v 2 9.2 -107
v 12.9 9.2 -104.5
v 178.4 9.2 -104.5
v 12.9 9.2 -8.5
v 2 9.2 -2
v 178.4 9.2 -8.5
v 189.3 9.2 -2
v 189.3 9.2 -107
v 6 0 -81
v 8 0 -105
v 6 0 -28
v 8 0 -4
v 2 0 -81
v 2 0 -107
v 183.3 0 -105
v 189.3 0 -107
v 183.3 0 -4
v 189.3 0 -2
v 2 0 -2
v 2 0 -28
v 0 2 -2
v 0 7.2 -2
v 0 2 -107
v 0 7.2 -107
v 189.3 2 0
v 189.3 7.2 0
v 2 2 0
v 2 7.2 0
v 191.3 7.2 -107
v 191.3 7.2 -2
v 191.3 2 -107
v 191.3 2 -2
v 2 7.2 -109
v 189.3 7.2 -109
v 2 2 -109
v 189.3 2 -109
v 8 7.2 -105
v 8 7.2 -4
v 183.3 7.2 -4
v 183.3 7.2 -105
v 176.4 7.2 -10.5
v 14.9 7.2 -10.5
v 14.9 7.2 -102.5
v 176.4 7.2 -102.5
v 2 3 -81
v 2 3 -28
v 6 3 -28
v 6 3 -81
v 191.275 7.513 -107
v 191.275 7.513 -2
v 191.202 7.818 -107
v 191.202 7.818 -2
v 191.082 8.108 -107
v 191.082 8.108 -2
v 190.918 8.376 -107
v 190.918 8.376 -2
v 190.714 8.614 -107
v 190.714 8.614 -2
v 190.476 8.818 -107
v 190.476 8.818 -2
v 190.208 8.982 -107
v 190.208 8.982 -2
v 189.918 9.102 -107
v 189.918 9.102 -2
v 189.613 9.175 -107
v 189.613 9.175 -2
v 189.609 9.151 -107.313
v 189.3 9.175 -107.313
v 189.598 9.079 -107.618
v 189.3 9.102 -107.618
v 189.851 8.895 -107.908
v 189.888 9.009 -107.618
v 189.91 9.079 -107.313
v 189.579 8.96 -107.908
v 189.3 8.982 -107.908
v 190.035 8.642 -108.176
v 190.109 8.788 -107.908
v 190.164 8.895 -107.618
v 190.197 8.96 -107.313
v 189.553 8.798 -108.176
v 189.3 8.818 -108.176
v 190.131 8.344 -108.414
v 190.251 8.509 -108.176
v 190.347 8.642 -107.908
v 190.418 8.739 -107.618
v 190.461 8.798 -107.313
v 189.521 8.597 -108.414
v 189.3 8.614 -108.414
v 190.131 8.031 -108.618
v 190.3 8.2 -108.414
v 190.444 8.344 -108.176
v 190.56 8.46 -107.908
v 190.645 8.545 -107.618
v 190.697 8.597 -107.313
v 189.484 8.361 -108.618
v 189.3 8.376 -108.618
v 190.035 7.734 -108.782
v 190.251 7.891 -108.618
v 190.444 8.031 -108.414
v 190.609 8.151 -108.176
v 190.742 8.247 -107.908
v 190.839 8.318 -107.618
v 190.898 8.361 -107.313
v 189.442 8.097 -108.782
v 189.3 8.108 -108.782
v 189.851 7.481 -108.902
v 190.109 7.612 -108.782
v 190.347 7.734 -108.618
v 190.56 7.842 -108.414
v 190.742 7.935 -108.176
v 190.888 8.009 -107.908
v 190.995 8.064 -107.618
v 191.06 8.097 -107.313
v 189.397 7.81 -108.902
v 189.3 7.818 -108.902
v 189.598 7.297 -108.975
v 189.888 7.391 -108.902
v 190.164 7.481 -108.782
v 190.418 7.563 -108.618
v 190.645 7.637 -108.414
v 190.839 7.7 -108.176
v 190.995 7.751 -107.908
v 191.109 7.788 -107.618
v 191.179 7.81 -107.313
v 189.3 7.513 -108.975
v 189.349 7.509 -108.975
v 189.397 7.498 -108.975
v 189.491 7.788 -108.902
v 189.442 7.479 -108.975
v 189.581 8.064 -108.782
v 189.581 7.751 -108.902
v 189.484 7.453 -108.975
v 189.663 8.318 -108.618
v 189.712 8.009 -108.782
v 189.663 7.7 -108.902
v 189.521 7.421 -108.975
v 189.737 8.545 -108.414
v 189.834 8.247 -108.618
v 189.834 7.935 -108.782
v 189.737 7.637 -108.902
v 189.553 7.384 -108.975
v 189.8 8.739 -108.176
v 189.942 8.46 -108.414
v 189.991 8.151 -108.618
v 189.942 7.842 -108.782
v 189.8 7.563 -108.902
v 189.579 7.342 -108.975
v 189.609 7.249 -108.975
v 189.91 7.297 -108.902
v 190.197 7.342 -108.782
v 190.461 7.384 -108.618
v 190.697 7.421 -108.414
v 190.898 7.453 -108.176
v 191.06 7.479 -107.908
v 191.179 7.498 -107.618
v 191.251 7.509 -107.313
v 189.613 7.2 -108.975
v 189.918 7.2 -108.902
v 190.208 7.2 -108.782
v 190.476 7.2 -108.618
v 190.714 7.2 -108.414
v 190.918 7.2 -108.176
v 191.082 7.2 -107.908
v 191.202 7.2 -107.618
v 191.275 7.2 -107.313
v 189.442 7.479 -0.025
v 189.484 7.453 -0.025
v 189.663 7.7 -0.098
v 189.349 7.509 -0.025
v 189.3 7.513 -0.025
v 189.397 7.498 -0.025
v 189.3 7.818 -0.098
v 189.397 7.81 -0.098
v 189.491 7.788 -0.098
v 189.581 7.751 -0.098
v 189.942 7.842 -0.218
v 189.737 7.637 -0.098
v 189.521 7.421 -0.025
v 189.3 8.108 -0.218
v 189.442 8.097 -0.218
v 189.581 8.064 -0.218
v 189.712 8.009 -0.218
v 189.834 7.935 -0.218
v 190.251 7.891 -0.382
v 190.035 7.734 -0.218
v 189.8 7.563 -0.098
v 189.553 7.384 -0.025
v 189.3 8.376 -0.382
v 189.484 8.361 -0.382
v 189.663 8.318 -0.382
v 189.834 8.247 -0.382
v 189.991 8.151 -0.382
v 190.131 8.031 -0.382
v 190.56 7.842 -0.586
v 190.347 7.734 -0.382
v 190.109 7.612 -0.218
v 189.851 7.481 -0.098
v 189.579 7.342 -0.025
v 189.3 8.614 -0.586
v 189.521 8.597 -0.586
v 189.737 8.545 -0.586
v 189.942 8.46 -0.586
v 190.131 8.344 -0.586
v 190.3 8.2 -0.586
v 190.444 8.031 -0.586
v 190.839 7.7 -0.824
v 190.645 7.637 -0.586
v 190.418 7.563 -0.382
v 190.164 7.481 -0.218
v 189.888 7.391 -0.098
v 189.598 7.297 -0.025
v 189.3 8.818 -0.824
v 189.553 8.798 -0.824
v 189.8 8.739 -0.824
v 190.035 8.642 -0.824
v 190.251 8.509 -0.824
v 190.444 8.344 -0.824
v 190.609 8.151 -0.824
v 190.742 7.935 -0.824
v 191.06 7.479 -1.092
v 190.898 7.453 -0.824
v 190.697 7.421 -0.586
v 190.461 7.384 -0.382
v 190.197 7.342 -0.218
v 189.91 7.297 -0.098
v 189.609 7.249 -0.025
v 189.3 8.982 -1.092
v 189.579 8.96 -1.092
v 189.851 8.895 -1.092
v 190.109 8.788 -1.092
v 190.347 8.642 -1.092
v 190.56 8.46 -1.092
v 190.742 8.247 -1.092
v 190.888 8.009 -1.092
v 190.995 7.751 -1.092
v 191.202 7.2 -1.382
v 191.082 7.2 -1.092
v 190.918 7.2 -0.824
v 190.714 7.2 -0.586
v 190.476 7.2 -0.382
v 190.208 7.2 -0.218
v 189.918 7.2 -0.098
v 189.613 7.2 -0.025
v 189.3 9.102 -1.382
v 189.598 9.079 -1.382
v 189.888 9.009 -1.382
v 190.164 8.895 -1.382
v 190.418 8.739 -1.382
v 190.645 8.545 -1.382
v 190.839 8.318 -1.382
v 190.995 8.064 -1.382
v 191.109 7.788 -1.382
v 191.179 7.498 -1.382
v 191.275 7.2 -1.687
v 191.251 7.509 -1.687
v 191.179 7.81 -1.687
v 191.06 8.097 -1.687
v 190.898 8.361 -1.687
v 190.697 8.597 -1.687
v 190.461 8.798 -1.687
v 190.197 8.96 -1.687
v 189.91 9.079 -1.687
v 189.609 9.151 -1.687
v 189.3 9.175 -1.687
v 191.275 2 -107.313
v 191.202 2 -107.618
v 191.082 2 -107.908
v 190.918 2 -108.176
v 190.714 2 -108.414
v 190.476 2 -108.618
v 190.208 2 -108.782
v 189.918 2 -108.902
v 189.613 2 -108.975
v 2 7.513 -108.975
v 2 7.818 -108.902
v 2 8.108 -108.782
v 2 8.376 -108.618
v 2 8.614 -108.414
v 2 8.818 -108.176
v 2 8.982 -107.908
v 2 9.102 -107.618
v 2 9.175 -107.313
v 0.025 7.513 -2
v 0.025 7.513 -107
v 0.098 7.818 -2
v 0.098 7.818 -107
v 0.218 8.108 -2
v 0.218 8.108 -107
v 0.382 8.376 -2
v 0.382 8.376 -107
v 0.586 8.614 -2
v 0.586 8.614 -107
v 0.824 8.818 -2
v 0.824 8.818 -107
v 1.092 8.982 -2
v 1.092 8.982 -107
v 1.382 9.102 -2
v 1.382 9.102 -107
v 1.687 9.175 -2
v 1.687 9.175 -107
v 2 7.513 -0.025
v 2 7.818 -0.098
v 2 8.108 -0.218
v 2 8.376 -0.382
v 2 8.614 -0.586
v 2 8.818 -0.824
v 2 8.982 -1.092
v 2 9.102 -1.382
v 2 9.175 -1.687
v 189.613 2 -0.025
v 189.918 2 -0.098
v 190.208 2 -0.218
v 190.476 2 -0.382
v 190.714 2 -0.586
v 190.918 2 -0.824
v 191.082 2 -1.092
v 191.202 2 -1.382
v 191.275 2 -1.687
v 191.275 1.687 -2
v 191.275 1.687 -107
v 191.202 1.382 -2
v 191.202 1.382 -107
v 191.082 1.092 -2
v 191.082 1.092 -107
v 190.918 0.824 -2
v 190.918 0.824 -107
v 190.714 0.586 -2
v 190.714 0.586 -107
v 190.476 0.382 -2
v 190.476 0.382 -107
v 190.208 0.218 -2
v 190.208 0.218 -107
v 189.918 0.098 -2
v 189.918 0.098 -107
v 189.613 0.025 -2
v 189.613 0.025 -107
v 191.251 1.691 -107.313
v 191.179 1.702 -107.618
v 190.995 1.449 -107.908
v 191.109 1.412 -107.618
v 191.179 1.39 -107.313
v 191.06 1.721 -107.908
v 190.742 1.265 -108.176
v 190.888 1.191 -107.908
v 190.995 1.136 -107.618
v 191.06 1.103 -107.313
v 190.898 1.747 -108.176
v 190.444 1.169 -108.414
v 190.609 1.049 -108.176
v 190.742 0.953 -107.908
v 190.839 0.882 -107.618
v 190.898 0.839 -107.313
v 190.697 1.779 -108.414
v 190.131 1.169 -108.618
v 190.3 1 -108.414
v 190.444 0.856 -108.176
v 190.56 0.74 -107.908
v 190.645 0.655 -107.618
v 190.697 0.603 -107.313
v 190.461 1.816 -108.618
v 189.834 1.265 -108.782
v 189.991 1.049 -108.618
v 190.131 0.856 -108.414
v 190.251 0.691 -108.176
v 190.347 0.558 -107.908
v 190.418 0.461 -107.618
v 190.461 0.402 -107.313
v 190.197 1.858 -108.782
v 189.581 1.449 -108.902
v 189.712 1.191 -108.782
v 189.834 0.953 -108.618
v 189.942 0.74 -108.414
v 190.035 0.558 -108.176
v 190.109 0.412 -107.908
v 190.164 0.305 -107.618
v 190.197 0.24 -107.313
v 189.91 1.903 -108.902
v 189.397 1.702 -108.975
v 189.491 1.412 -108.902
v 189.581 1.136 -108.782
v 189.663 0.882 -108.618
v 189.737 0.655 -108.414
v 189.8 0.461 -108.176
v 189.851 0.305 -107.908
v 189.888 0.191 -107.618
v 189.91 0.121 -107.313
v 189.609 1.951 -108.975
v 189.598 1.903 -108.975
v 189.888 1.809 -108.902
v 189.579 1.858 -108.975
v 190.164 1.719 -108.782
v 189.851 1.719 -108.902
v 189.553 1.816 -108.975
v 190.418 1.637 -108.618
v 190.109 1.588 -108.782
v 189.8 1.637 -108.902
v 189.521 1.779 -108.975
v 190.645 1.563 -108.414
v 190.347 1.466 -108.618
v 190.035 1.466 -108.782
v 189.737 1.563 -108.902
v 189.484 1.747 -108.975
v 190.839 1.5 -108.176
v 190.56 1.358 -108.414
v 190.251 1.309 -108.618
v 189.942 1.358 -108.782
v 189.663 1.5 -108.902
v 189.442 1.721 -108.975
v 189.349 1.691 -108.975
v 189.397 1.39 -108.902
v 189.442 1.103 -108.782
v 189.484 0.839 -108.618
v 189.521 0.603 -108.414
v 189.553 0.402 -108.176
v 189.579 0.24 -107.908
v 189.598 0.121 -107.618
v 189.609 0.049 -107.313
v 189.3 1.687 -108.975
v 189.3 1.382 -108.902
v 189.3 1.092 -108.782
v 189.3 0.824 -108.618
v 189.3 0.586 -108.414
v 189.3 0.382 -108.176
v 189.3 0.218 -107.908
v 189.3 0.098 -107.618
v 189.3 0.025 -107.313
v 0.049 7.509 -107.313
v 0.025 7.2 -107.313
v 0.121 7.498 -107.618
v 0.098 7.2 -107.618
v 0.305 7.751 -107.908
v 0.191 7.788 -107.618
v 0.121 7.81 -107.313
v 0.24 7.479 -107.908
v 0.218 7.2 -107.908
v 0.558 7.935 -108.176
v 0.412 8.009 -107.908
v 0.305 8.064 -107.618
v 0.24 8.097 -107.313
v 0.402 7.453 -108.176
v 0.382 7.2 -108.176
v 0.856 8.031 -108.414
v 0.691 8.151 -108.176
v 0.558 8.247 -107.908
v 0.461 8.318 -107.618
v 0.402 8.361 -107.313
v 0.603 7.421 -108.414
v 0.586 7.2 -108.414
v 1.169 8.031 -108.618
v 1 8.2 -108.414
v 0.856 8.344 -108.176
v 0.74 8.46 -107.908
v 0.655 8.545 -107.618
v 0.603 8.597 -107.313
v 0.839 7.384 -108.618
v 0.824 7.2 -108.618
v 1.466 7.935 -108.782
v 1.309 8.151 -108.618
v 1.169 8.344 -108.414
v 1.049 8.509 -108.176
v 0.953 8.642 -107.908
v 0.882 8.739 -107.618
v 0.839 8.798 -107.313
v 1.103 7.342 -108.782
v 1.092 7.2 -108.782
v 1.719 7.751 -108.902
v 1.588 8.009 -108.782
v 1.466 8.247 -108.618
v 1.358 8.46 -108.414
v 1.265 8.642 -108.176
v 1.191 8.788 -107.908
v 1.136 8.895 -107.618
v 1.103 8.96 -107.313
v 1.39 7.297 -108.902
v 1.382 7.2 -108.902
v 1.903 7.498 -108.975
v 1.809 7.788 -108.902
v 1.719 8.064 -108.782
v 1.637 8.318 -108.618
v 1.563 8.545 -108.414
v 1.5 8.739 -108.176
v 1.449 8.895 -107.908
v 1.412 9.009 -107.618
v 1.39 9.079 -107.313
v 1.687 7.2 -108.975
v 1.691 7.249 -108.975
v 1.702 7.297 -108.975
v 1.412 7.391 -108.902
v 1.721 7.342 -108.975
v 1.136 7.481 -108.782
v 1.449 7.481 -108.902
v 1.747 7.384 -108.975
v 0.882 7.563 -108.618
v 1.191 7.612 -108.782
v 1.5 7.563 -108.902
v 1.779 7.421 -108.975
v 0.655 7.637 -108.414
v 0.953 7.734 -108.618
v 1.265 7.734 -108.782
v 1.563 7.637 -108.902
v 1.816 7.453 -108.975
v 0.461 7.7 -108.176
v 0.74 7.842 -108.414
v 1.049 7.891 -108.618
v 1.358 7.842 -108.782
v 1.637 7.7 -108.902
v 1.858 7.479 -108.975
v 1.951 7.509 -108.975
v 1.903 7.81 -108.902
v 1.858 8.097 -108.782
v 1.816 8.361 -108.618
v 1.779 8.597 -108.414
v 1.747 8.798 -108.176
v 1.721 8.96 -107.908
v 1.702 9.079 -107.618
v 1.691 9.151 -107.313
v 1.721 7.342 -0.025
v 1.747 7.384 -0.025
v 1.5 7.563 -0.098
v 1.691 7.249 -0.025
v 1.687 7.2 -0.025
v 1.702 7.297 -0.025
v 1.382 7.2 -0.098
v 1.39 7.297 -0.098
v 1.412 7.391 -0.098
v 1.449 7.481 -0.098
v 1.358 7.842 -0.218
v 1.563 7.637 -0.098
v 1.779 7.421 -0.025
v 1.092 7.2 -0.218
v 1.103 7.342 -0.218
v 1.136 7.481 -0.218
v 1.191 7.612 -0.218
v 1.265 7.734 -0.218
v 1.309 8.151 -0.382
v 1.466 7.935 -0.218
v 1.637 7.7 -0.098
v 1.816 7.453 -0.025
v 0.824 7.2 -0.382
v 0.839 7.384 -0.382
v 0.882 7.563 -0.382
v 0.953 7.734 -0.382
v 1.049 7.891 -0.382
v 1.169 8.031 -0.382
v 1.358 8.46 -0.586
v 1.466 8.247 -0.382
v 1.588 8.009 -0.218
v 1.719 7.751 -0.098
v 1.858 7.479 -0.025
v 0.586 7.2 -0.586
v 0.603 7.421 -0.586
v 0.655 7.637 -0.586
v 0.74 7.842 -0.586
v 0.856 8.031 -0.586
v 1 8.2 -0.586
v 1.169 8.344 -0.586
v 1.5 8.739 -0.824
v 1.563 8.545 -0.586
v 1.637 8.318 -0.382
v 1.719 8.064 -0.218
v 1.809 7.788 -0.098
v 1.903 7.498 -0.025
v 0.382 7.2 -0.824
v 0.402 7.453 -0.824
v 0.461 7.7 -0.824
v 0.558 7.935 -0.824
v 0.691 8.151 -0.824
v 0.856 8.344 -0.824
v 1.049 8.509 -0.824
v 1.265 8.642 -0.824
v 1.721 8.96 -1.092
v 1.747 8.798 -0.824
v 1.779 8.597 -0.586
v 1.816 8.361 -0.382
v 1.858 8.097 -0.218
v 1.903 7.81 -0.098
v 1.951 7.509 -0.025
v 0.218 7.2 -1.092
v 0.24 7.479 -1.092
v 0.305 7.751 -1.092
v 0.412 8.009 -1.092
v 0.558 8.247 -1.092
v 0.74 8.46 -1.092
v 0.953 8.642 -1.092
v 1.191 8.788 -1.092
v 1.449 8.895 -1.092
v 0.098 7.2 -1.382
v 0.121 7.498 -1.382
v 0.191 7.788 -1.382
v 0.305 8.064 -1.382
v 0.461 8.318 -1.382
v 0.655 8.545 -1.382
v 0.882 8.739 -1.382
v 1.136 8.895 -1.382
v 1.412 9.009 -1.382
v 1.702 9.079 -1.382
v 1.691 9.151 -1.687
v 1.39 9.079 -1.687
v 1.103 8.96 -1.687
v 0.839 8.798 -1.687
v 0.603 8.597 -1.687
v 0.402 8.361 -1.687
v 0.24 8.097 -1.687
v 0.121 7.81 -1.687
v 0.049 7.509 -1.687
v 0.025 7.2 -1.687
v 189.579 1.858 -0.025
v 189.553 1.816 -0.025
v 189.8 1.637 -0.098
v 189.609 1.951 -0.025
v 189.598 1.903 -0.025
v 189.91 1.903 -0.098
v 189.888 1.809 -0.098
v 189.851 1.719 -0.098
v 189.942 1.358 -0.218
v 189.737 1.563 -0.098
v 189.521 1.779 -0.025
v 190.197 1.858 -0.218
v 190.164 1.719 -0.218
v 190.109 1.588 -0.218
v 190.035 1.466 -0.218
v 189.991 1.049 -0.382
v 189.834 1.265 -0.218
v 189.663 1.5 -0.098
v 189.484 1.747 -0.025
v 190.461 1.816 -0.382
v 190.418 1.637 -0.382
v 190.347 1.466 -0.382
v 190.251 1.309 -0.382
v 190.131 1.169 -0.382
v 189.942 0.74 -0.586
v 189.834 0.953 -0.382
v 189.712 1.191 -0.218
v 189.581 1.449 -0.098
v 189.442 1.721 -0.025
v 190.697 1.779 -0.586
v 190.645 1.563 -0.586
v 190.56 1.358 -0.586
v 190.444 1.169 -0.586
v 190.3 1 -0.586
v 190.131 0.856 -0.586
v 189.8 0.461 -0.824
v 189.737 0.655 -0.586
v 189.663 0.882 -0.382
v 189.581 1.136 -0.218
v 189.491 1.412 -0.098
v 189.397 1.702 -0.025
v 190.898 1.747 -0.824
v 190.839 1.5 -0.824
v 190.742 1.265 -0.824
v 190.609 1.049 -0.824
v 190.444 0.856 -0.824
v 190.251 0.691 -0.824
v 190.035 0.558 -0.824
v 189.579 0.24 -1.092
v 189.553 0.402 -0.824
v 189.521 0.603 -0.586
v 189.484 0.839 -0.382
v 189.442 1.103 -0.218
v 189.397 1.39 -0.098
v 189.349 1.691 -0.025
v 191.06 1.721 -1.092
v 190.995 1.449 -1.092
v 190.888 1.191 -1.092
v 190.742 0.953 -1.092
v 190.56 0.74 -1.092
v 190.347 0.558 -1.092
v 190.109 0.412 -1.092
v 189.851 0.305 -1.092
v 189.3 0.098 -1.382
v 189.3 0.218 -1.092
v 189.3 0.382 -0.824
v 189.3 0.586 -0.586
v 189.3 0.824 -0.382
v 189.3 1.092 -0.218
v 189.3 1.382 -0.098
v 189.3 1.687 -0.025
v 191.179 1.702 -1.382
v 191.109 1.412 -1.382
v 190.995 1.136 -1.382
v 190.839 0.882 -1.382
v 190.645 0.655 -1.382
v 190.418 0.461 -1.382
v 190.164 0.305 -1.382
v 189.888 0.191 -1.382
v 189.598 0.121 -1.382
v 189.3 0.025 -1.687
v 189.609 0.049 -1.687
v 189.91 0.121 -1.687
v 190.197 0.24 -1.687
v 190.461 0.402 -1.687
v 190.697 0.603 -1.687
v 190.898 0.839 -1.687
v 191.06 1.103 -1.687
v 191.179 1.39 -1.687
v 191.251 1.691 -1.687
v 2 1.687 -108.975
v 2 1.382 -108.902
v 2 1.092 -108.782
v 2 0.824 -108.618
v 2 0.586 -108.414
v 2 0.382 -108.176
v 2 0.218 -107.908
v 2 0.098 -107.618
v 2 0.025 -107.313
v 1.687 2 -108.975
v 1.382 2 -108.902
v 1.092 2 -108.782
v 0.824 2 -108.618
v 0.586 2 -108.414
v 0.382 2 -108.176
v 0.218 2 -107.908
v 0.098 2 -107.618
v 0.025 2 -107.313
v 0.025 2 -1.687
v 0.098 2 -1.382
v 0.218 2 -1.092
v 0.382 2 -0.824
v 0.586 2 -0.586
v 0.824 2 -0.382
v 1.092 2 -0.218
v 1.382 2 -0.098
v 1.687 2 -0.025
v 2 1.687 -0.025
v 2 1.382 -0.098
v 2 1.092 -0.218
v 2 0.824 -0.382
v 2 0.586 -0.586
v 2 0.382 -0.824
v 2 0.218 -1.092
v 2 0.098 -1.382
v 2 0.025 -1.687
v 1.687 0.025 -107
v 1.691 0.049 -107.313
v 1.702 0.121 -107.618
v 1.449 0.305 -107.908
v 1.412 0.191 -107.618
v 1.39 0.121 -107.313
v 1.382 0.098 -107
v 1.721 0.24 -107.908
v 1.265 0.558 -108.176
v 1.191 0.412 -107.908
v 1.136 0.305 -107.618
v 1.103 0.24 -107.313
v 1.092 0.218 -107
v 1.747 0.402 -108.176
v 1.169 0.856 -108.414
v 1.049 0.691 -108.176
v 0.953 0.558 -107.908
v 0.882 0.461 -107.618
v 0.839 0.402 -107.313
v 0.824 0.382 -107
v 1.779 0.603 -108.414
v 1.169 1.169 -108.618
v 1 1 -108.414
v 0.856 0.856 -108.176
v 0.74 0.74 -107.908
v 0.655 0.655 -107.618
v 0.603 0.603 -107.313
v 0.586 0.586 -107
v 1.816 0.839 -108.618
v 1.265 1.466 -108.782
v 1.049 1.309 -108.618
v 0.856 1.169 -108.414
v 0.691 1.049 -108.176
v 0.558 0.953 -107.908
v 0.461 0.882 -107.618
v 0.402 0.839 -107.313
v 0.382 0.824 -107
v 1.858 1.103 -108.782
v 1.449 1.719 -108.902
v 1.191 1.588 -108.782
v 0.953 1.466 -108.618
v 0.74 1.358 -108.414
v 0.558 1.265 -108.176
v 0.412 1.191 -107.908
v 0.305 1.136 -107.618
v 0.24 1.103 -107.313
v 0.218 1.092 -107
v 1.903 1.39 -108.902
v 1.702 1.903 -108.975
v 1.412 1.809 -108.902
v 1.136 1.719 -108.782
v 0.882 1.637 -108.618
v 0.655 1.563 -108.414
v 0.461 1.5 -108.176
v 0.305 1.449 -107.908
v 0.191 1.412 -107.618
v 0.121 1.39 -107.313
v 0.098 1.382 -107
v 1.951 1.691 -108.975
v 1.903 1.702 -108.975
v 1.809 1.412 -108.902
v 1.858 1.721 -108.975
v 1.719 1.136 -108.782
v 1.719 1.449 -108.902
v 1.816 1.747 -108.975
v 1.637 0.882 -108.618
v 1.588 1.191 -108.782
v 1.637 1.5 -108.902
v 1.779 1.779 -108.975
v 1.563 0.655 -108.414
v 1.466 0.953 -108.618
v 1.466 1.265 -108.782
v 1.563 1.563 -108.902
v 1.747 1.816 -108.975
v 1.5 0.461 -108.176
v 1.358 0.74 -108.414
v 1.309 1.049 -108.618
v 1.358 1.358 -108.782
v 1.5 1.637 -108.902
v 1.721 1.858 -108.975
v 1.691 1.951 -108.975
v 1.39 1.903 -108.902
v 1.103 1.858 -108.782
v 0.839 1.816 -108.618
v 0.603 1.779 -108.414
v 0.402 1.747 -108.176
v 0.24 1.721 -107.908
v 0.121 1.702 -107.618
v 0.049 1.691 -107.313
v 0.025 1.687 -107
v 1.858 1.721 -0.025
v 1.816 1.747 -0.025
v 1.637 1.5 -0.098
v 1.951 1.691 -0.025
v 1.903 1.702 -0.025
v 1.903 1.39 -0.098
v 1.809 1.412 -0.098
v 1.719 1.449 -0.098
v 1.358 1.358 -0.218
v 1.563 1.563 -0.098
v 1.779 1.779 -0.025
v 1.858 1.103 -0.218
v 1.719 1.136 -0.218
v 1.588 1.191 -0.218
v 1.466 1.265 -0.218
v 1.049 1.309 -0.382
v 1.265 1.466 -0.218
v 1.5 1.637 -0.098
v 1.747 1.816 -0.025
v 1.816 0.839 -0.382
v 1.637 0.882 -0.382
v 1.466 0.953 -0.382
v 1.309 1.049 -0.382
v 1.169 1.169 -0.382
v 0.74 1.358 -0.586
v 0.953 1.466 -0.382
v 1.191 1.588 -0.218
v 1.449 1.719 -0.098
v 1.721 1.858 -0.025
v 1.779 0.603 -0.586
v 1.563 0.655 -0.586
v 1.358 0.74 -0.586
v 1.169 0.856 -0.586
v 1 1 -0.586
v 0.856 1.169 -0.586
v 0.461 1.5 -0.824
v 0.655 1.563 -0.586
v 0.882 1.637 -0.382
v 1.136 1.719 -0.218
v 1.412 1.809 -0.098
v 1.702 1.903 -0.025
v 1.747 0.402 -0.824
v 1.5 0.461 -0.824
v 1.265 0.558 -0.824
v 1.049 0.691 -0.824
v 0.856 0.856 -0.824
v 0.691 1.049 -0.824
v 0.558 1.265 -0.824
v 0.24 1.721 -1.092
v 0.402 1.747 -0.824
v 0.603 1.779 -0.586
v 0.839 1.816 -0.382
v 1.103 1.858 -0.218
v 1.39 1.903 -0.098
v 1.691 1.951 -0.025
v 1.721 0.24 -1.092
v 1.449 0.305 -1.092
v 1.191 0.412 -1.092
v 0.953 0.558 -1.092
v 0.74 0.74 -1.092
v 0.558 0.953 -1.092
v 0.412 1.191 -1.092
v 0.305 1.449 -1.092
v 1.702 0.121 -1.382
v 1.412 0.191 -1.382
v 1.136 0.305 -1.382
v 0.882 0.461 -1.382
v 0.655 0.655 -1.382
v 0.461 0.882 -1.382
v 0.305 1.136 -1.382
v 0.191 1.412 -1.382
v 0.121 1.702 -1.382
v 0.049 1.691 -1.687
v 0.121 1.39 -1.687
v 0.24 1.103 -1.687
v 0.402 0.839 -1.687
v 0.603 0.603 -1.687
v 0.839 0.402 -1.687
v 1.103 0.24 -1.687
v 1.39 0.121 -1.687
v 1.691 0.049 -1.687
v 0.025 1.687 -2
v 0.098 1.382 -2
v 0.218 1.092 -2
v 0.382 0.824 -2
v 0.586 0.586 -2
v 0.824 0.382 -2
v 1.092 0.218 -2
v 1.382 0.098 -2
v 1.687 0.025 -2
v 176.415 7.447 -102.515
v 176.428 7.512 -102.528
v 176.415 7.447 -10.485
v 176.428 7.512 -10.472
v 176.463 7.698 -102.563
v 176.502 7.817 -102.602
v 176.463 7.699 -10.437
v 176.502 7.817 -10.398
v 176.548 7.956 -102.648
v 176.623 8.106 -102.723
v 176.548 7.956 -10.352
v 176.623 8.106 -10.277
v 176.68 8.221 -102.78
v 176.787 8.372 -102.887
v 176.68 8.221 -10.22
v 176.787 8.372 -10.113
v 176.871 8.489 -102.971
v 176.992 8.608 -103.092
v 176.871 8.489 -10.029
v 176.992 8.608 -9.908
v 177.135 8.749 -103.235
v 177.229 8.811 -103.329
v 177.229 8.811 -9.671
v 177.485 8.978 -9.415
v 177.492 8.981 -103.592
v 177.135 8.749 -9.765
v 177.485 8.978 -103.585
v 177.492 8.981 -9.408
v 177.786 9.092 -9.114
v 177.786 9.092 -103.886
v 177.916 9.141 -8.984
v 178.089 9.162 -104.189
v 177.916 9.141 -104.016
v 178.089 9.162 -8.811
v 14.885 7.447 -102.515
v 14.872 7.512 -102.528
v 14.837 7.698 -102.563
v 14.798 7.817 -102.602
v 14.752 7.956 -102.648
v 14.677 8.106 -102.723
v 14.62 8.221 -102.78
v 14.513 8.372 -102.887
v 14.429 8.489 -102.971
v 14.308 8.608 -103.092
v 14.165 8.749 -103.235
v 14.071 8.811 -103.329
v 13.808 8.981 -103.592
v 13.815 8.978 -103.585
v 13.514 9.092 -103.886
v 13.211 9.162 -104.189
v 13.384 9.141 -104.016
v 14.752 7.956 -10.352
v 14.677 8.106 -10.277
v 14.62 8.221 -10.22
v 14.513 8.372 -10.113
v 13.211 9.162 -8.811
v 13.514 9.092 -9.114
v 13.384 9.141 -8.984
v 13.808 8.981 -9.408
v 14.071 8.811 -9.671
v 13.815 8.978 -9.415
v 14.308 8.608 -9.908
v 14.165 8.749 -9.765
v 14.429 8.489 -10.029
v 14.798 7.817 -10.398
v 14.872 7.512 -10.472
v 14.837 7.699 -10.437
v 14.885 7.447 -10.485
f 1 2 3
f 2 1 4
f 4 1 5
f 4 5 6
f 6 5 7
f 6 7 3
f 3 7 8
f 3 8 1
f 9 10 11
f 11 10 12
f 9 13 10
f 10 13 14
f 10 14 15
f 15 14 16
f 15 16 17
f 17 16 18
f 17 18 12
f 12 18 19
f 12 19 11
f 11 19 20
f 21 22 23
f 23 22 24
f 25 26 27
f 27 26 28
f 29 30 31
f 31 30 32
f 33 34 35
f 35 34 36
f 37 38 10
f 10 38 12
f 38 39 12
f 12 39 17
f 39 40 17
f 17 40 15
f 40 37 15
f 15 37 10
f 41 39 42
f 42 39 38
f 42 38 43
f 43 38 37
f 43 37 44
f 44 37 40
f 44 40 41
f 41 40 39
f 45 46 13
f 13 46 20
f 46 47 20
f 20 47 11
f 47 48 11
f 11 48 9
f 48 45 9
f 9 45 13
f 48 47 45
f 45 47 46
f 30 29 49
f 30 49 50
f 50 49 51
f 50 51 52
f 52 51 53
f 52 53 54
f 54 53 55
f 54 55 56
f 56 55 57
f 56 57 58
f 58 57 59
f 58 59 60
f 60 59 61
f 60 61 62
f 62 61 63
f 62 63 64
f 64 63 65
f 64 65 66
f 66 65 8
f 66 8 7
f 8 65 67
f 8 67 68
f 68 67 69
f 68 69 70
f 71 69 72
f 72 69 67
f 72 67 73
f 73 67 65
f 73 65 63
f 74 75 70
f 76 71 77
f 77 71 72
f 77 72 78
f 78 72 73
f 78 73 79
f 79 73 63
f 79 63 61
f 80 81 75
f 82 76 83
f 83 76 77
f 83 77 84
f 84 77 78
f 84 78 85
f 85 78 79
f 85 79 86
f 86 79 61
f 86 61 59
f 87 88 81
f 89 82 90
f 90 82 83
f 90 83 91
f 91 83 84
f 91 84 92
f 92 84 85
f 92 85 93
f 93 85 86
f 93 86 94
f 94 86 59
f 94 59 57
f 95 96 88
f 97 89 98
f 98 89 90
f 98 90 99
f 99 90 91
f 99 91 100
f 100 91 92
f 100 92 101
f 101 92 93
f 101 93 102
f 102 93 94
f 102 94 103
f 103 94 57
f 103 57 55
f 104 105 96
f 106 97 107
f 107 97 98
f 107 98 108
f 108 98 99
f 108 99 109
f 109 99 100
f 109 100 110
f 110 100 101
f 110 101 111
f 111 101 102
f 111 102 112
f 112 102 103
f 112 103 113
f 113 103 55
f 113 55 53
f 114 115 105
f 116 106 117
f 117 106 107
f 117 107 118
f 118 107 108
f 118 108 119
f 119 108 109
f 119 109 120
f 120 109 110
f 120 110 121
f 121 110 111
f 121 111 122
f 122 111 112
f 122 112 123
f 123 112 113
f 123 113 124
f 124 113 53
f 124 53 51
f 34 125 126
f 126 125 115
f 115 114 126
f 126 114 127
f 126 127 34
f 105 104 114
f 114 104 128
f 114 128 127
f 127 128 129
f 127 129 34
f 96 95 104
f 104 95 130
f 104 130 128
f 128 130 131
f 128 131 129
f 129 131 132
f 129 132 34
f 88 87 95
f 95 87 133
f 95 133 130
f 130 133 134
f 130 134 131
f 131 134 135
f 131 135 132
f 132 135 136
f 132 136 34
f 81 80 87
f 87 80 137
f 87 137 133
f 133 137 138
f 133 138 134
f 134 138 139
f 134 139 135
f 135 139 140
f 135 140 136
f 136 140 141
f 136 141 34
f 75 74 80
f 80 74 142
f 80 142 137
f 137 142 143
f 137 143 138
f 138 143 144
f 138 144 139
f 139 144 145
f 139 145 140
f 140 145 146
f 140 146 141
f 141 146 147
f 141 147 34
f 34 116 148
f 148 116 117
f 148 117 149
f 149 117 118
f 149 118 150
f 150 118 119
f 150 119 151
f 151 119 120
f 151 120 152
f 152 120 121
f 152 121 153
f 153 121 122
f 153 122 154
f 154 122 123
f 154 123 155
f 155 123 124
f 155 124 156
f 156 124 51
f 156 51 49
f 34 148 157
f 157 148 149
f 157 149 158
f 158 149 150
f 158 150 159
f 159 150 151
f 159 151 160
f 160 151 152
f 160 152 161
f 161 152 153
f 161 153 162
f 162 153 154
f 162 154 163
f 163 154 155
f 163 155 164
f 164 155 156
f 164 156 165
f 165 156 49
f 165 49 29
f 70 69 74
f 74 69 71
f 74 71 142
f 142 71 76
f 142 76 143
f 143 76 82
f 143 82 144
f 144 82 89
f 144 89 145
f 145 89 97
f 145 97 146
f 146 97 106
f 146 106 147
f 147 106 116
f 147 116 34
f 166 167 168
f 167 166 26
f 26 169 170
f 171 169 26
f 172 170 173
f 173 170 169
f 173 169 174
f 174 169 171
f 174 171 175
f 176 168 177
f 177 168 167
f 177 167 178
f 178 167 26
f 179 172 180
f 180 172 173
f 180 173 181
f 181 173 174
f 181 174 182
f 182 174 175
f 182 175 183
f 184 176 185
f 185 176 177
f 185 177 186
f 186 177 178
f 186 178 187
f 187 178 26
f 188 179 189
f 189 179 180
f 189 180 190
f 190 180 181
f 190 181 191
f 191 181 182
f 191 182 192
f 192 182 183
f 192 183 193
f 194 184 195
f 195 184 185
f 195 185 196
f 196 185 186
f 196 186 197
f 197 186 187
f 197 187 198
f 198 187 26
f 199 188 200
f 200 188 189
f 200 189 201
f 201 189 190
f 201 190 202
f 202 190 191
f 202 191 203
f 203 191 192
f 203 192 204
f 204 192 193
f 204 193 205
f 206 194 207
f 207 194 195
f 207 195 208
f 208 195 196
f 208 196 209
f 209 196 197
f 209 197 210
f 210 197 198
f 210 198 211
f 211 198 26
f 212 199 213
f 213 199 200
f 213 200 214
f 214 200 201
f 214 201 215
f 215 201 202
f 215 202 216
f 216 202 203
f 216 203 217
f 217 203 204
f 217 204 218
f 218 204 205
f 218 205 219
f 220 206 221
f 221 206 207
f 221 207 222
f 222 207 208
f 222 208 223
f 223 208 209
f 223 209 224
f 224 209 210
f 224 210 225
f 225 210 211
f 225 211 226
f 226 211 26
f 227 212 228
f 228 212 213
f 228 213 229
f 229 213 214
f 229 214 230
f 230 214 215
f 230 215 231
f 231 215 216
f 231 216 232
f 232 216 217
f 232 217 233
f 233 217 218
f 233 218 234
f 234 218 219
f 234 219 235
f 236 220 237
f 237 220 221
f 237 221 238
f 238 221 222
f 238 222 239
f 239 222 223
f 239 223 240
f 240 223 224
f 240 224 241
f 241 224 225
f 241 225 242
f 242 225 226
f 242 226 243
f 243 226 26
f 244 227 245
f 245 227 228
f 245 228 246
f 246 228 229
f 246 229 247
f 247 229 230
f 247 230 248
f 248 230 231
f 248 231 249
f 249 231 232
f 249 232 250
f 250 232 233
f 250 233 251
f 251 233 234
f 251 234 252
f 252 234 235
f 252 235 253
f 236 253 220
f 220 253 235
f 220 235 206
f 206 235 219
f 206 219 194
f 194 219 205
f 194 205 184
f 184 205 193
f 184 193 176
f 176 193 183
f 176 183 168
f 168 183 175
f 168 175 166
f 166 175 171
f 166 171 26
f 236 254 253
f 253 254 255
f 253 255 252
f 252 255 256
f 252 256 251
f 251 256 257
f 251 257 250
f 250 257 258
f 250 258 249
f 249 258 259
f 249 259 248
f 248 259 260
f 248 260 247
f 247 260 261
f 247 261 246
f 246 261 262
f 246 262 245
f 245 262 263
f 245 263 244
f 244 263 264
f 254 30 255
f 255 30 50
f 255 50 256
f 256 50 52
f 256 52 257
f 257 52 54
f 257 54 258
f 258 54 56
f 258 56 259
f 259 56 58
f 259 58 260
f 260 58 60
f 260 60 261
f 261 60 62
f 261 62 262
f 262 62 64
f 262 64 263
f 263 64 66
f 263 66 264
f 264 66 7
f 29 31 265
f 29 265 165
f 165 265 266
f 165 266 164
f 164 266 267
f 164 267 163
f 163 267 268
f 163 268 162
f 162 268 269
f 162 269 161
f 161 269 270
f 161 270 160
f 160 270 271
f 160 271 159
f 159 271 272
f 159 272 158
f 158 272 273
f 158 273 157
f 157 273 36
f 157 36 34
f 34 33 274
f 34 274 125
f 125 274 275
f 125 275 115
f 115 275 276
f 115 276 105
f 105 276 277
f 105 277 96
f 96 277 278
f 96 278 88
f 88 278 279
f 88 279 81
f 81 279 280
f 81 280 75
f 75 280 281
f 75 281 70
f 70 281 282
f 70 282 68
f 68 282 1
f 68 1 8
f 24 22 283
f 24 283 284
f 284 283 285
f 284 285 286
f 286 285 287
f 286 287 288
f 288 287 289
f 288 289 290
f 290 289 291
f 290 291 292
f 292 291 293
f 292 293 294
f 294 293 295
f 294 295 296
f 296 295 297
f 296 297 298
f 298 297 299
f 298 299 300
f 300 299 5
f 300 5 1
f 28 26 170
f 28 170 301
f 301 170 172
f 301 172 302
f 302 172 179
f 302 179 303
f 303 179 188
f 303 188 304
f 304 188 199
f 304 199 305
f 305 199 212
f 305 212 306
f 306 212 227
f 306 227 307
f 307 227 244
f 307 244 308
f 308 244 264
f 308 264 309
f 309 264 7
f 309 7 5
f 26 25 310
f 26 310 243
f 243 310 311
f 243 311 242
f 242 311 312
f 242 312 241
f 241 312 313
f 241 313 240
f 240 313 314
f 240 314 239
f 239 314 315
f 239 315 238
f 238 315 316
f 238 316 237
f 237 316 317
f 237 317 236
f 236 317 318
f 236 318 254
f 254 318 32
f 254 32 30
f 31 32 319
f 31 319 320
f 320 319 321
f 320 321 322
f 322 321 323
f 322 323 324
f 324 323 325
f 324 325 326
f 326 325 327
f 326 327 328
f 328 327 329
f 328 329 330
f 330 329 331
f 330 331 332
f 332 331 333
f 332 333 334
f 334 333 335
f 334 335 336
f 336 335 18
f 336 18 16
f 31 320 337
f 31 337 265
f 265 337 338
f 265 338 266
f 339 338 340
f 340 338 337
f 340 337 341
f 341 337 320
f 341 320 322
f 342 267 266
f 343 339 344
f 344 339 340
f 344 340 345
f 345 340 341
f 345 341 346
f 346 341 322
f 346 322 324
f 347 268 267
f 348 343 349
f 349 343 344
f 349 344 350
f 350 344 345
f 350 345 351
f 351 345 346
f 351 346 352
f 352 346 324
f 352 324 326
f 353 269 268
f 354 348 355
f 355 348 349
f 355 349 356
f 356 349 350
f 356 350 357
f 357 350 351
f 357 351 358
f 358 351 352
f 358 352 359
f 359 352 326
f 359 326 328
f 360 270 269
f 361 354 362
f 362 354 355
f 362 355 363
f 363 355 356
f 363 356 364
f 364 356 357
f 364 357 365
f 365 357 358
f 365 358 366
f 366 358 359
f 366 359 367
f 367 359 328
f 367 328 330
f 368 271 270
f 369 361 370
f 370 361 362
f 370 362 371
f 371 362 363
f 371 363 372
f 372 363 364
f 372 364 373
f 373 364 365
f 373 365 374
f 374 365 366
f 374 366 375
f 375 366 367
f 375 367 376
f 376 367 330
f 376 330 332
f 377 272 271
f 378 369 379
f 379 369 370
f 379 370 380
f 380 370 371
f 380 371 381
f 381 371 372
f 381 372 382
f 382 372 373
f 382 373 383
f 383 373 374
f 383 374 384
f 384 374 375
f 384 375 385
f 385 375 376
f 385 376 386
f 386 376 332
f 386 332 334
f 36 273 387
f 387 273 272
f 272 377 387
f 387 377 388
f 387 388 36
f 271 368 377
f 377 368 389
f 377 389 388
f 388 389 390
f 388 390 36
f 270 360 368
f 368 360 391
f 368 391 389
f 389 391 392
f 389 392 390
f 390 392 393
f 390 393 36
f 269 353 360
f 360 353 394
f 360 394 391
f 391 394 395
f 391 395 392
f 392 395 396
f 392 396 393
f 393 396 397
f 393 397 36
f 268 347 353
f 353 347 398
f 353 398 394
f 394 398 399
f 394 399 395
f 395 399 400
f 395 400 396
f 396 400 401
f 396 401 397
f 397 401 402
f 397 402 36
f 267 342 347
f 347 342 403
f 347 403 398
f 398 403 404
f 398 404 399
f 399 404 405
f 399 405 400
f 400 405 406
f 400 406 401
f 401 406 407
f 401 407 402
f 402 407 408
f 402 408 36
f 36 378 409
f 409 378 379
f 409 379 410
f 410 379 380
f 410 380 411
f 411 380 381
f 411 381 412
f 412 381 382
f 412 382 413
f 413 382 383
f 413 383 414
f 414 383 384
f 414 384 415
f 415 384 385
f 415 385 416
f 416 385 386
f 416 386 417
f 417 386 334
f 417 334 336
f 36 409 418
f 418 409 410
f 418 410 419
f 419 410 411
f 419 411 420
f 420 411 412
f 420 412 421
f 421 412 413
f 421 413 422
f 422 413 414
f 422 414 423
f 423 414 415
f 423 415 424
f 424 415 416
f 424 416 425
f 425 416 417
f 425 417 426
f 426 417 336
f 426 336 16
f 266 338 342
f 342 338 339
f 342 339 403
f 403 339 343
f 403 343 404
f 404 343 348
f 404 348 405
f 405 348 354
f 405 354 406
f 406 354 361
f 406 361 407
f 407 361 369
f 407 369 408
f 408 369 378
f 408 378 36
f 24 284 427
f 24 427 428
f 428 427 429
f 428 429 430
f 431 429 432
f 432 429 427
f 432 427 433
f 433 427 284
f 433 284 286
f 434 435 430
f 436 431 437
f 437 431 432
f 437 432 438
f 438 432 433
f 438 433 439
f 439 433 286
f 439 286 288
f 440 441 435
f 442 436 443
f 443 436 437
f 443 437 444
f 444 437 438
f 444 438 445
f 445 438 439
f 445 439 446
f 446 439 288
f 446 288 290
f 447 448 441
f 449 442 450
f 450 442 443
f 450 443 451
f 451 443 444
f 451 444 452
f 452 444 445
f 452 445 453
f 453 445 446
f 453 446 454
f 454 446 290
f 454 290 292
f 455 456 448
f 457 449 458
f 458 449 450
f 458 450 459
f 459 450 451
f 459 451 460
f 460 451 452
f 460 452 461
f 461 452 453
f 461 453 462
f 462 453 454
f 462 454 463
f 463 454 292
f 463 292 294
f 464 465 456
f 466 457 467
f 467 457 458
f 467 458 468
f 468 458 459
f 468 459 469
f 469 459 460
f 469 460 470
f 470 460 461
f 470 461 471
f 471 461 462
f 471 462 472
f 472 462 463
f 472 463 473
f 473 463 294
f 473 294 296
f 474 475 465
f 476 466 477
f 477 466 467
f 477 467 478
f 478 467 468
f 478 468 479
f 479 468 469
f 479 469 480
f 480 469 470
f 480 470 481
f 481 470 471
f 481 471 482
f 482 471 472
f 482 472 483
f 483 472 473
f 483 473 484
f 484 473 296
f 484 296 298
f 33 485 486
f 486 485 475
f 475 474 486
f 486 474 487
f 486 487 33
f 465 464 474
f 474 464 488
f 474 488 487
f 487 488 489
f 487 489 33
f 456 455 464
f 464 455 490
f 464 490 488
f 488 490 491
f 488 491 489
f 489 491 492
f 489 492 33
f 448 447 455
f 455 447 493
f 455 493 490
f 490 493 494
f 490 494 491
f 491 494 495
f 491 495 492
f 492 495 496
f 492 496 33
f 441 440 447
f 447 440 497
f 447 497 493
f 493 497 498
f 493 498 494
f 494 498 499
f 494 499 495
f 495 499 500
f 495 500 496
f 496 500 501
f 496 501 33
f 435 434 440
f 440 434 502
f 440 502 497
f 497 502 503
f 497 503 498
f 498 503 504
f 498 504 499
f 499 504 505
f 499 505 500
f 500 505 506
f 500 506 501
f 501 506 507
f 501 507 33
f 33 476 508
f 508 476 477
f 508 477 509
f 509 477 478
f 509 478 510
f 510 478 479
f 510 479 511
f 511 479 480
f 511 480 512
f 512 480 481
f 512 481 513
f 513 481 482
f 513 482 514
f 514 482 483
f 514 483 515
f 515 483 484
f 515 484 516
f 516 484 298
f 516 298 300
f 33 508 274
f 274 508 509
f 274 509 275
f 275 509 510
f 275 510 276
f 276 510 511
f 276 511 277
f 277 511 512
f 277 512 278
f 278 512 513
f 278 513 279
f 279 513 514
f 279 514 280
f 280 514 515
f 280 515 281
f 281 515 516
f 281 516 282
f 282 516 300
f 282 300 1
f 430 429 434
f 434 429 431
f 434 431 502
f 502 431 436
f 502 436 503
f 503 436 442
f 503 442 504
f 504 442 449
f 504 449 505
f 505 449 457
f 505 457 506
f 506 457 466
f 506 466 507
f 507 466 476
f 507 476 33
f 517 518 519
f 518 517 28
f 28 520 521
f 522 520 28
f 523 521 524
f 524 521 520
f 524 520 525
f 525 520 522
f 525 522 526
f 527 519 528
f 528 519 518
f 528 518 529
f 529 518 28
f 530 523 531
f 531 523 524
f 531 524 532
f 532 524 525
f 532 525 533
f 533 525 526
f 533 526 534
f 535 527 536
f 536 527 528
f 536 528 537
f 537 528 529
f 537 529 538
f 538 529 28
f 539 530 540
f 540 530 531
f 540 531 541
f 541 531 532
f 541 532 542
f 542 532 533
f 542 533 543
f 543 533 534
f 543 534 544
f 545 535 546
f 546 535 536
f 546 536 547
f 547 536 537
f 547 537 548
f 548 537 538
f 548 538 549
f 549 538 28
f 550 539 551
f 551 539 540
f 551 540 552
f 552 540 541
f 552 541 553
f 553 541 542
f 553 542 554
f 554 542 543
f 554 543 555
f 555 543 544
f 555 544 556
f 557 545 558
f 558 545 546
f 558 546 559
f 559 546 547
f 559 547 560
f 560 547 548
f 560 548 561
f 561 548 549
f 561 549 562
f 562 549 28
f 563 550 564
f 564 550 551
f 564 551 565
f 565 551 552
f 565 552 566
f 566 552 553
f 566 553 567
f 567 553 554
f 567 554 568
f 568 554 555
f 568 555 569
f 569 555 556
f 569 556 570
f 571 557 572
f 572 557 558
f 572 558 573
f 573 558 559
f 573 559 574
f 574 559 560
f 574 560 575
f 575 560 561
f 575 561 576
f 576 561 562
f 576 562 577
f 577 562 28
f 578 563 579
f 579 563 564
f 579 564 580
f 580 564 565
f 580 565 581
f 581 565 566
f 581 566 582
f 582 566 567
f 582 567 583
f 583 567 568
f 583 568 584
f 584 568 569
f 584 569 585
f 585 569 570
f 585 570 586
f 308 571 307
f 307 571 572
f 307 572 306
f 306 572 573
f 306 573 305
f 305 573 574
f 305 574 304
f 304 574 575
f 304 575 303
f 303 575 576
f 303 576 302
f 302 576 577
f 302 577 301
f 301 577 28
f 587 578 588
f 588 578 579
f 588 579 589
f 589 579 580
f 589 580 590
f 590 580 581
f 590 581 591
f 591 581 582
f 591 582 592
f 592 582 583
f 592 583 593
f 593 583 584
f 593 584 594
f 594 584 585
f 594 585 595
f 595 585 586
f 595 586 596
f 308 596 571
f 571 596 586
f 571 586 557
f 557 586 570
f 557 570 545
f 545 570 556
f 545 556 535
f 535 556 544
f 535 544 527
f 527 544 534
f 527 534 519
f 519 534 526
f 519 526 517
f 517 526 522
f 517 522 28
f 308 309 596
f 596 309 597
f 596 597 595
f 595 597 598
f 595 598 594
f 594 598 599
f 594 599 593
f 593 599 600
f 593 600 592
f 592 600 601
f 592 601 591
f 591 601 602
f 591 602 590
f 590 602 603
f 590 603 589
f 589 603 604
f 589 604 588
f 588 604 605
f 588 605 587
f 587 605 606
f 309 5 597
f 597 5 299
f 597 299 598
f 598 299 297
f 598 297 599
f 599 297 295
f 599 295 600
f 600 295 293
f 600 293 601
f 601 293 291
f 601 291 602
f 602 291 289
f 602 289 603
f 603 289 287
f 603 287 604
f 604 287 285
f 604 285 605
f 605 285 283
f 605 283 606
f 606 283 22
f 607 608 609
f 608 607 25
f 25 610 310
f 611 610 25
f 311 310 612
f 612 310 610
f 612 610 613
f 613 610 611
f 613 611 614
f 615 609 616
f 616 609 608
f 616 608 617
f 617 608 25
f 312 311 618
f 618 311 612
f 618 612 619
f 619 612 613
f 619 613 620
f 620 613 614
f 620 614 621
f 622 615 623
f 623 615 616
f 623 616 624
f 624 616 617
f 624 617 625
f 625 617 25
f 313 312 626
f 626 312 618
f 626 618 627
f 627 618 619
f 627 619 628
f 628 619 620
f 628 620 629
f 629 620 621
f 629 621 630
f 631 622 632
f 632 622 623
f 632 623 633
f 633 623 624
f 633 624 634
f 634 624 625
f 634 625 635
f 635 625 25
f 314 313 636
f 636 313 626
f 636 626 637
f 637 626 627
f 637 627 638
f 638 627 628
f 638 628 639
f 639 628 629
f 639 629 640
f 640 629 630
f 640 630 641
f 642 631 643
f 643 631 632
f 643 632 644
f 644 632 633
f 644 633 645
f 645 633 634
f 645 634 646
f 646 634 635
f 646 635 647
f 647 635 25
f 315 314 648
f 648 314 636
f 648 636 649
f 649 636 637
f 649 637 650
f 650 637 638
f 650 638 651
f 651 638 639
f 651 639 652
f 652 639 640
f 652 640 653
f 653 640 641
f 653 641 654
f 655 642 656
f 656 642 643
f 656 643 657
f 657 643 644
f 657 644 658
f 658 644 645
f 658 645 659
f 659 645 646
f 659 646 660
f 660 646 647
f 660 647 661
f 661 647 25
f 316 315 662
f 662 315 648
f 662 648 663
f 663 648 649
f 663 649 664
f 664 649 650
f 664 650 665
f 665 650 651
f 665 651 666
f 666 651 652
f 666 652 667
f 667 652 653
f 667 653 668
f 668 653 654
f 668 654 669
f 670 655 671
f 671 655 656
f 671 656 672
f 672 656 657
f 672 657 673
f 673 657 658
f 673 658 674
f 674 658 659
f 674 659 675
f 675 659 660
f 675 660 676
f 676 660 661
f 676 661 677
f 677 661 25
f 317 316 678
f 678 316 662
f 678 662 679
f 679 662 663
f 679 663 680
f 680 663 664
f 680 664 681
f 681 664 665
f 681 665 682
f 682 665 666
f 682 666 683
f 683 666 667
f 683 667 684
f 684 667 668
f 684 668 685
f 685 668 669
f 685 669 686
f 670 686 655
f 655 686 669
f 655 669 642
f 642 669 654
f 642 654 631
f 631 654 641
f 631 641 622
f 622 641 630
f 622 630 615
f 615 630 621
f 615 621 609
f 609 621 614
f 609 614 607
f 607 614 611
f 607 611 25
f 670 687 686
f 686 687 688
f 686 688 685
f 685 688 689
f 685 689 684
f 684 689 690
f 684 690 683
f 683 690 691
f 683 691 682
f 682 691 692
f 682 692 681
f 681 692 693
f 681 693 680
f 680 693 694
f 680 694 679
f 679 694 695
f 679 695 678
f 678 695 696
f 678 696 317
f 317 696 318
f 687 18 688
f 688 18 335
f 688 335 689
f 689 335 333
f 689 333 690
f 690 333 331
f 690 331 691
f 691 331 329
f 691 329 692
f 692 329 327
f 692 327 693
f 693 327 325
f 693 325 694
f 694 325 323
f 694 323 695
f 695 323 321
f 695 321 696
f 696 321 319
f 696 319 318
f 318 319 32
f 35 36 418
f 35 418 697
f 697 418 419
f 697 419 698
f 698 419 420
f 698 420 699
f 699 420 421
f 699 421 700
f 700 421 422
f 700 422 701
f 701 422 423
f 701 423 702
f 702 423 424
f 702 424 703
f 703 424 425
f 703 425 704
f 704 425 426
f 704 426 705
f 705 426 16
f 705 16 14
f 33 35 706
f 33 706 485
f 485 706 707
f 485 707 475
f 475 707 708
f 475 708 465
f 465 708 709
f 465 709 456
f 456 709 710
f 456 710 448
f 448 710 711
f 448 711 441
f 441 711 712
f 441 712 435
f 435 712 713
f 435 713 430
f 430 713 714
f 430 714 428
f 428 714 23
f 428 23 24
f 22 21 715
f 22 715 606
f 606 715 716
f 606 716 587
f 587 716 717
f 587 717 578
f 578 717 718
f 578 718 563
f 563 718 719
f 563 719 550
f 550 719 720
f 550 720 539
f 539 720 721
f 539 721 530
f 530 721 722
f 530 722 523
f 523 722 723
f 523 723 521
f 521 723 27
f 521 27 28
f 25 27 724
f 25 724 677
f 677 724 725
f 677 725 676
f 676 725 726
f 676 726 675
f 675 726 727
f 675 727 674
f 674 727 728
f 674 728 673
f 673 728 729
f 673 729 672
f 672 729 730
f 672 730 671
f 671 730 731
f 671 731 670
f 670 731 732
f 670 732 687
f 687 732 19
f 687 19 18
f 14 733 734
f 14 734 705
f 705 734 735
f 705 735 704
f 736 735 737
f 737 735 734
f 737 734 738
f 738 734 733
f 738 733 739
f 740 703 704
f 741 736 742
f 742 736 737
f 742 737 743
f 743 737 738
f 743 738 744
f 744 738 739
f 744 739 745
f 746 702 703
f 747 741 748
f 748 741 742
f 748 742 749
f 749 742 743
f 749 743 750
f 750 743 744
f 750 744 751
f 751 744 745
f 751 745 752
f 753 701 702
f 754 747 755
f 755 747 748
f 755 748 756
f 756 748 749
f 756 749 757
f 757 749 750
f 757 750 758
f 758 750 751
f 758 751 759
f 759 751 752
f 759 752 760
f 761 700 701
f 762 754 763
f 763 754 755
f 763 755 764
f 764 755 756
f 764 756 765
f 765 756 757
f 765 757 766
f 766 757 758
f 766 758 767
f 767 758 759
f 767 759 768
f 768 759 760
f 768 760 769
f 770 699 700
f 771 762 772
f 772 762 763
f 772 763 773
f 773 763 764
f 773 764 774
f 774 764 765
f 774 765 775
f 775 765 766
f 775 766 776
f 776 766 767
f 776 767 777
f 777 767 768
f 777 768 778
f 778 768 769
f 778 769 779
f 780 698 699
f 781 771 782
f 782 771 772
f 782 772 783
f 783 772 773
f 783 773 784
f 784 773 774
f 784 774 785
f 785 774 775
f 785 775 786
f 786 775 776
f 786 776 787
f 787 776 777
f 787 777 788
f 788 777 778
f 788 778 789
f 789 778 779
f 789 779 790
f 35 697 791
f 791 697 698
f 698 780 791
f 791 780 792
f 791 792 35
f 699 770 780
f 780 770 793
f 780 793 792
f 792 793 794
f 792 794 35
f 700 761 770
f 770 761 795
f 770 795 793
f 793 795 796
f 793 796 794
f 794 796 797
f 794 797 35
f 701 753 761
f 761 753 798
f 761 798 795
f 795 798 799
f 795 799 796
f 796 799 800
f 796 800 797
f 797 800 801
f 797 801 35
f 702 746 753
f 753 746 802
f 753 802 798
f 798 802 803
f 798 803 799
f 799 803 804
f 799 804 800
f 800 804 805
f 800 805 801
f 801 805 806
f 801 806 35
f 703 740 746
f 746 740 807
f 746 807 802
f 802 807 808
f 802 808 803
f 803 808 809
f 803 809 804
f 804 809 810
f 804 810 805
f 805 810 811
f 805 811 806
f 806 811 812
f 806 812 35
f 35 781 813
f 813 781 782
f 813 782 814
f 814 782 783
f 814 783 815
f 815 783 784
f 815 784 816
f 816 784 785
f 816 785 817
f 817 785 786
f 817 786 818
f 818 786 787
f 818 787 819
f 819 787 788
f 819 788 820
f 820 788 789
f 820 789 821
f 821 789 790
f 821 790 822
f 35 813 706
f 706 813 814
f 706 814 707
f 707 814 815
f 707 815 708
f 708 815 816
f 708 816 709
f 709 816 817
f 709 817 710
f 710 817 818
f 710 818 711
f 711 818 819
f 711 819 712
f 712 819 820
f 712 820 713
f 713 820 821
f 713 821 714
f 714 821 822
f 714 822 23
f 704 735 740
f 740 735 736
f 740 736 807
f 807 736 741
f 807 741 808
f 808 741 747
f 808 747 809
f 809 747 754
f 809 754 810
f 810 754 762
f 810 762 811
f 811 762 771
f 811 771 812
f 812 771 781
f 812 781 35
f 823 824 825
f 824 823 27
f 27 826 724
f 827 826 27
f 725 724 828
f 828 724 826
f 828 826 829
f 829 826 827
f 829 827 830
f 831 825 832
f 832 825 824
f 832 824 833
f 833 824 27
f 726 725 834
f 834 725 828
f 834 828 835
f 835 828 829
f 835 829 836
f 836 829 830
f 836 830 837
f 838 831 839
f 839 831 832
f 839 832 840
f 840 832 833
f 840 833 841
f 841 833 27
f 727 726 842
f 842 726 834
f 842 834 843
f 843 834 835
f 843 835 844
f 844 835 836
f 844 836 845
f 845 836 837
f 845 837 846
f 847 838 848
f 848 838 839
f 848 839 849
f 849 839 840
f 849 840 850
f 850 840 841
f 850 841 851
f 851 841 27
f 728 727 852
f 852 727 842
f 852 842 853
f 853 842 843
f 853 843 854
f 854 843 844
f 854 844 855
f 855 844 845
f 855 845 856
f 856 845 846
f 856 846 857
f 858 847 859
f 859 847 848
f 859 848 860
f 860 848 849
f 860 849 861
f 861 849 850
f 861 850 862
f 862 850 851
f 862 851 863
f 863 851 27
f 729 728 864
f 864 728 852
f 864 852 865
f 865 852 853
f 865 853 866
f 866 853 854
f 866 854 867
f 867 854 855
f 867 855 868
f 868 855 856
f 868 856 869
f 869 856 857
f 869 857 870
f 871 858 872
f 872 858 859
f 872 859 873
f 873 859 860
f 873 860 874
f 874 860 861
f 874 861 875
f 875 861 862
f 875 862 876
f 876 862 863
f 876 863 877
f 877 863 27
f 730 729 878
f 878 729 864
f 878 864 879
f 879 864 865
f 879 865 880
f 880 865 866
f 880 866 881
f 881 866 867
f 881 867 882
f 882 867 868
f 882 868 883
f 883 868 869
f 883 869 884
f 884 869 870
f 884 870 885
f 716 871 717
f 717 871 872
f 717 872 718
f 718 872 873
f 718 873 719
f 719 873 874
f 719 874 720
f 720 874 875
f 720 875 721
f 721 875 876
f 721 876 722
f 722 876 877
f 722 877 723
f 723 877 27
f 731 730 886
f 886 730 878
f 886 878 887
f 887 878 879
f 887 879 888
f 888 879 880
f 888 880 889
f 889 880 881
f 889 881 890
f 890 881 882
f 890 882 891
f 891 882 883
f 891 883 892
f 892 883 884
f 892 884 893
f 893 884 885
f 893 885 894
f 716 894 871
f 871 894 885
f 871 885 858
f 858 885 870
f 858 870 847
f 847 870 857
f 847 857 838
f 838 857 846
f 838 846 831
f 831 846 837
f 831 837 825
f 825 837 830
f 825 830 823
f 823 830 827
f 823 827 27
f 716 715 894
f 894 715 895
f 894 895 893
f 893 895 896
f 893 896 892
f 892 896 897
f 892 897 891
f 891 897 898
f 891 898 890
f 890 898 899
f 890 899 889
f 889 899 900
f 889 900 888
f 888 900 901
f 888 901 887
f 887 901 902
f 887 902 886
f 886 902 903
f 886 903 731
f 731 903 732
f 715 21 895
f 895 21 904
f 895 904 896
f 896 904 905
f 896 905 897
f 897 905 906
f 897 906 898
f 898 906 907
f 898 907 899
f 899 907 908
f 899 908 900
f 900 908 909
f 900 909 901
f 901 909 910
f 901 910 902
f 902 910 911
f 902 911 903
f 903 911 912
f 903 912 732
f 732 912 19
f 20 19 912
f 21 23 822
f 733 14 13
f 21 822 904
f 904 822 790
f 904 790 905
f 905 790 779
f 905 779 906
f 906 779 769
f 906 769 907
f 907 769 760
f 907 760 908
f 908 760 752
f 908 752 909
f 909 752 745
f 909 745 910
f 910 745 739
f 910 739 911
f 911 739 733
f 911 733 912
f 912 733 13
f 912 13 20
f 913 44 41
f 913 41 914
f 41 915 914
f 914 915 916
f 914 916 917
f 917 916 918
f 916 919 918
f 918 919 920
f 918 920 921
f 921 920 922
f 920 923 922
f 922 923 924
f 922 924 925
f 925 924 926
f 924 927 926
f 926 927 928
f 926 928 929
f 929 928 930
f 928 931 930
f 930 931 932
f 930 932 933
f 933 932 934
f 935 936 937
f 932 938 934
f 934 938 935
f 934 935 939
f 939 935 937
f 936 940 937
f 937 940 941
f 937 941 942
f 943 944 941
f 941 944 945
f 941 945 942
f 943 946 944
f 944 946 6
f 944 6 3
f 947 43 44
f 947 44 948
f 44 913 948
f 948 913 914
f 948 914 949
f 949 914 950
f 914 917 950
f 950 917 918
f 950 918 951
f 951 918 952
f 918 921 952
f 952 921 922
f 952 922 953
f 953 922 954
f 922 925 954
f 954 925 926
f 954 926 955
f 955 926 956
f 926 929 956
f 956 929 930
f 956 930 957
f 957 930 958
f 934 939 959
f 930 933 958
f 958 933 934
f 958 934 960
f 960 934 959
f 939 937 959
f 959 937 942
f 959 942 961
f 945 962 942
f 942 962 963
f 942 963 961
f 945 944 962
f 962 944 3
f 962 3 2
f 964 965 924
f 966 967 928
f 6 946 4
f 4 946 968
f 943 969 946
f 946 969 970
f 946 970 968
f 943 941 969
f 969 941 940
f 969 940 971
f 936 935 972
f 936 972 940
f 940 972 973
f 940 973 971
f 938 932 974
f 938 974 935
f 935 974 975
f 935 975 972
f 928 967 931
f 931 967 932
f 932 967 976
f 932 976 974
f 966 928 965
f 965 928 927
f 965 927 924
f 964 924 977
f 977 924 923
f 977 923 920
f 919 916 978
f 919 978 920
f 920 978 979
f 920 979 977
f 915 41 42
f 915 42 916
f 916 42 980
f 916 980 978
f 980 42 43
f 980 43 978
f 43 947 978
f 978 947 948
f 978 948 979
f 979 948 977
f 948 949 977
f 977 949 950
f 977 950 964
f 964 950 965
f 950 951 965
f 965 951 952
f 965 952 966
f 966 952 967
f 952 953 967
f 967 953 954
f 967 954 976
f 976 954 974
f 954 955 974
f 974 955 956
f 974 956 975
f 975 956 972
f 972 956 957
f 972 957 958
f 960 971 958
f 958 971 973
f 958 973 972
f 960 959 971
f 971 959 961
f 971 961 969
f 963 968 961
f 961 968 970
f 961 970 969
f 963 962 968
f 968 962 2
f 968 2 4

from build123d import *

# Parameters (mm, degrees)
CROQUIS1_W              = 191.3
CROQUIS1_H              = 109
CROQUIS1_W_2            = 161.5
CROQUIS1_H_2            = 92
SALIENTE_EXTRUIR1_DEPTH = 9.2
CROQUIS2_W              = 175.3
CROQUIS2_H              = 101
CROQUIS2_W_2            = 161.5
CROQUIS2_H_2            = 92
CORTAR_EXTRUIR1_DEPTH   = 7.2
CROQUIS3_W              = 4
CROQUIS3_H              = 53
CORTAR_EXTRUIR2_DEPTH   = 3
REDONDEO3_R             = 2


with BuildPart() as part:
    # Croquis1 → Saliente-Extruir1 (new body)
    with BuildSketch(Plane(origin=(0, 0, 0), x_dir=(1, 0, 0), z_dir=(0, 1, 0))):
        with Locations((95.65, 54.5)):
            Rectangle(CROQUIS1_W, CROQUIS1_H)
        with Locations((95.65, 56.5)):
            Rectangle(CROQUIS1_W_2, CROQUIS1_H_2, mode=Mode.SUBTRACT)
    extrude(amount=SALIENTE_EXTRUIR1_DEPTH)

    # Croquis2 → Cortar-Extruir1 (cut)
    with BuildSketch(Plane.XZ):
        with Locations((95.65, -54.5)):
            Rectangle(CROQUIS2_W, CROQUIS2_H)
        with Locations((95.65, -56.5)):
            Rectangle(CROQUIS2_W_2, CROQUIS2_H_2, mode=Mode.SUBTRACT)
    extrude(amount=-CORTAR_EXTRUIR1_DEPTH, mode=Mode.SUBTRACT)

    # Croquis3 → Cortar-Extruir2 (cut)
    with BuildSketch(Plane.XZ):
        with Locations((4, -54.5)):
            Rectangle(CROQUIS3_W, CROQUIS3_H)
    extrude(amount=-CORTAR_EXTRUIR2_DEPTH, mode=Mode.SUBTRACT)

    # Redondeo3
    redondeo3_edges = [part.edges().sort_by_distance(p)[0] for p in [
        (0, 0, -54.5),
        (0, 4.6, -109),
        (95.65, 0, -109),
        (191.3, 4.6, -109),
        (191.3, 0, -54.5),
        (0, 4.6, 0),
        (191.3, 4.6, 0),
        (95.65, 0, 0),
        (14.9, 9.2, -56.5),
        (95.65, 9.2, -10.5),
        (176.4, 9.2, -56.5),
        (95.65, 9.2, -102.5),
        (95.65, 9.2, -109),
        (191.3, 9.2, -54.5),
        (95.65, 9.2, 0),
        (0, 9.2, -54.5),
    ]]
    fillet(redondeo3_edges, radius=REDONDEO3_R - 0.0001)  # a hair under: the kernel refuses the full size


solid = part.part
